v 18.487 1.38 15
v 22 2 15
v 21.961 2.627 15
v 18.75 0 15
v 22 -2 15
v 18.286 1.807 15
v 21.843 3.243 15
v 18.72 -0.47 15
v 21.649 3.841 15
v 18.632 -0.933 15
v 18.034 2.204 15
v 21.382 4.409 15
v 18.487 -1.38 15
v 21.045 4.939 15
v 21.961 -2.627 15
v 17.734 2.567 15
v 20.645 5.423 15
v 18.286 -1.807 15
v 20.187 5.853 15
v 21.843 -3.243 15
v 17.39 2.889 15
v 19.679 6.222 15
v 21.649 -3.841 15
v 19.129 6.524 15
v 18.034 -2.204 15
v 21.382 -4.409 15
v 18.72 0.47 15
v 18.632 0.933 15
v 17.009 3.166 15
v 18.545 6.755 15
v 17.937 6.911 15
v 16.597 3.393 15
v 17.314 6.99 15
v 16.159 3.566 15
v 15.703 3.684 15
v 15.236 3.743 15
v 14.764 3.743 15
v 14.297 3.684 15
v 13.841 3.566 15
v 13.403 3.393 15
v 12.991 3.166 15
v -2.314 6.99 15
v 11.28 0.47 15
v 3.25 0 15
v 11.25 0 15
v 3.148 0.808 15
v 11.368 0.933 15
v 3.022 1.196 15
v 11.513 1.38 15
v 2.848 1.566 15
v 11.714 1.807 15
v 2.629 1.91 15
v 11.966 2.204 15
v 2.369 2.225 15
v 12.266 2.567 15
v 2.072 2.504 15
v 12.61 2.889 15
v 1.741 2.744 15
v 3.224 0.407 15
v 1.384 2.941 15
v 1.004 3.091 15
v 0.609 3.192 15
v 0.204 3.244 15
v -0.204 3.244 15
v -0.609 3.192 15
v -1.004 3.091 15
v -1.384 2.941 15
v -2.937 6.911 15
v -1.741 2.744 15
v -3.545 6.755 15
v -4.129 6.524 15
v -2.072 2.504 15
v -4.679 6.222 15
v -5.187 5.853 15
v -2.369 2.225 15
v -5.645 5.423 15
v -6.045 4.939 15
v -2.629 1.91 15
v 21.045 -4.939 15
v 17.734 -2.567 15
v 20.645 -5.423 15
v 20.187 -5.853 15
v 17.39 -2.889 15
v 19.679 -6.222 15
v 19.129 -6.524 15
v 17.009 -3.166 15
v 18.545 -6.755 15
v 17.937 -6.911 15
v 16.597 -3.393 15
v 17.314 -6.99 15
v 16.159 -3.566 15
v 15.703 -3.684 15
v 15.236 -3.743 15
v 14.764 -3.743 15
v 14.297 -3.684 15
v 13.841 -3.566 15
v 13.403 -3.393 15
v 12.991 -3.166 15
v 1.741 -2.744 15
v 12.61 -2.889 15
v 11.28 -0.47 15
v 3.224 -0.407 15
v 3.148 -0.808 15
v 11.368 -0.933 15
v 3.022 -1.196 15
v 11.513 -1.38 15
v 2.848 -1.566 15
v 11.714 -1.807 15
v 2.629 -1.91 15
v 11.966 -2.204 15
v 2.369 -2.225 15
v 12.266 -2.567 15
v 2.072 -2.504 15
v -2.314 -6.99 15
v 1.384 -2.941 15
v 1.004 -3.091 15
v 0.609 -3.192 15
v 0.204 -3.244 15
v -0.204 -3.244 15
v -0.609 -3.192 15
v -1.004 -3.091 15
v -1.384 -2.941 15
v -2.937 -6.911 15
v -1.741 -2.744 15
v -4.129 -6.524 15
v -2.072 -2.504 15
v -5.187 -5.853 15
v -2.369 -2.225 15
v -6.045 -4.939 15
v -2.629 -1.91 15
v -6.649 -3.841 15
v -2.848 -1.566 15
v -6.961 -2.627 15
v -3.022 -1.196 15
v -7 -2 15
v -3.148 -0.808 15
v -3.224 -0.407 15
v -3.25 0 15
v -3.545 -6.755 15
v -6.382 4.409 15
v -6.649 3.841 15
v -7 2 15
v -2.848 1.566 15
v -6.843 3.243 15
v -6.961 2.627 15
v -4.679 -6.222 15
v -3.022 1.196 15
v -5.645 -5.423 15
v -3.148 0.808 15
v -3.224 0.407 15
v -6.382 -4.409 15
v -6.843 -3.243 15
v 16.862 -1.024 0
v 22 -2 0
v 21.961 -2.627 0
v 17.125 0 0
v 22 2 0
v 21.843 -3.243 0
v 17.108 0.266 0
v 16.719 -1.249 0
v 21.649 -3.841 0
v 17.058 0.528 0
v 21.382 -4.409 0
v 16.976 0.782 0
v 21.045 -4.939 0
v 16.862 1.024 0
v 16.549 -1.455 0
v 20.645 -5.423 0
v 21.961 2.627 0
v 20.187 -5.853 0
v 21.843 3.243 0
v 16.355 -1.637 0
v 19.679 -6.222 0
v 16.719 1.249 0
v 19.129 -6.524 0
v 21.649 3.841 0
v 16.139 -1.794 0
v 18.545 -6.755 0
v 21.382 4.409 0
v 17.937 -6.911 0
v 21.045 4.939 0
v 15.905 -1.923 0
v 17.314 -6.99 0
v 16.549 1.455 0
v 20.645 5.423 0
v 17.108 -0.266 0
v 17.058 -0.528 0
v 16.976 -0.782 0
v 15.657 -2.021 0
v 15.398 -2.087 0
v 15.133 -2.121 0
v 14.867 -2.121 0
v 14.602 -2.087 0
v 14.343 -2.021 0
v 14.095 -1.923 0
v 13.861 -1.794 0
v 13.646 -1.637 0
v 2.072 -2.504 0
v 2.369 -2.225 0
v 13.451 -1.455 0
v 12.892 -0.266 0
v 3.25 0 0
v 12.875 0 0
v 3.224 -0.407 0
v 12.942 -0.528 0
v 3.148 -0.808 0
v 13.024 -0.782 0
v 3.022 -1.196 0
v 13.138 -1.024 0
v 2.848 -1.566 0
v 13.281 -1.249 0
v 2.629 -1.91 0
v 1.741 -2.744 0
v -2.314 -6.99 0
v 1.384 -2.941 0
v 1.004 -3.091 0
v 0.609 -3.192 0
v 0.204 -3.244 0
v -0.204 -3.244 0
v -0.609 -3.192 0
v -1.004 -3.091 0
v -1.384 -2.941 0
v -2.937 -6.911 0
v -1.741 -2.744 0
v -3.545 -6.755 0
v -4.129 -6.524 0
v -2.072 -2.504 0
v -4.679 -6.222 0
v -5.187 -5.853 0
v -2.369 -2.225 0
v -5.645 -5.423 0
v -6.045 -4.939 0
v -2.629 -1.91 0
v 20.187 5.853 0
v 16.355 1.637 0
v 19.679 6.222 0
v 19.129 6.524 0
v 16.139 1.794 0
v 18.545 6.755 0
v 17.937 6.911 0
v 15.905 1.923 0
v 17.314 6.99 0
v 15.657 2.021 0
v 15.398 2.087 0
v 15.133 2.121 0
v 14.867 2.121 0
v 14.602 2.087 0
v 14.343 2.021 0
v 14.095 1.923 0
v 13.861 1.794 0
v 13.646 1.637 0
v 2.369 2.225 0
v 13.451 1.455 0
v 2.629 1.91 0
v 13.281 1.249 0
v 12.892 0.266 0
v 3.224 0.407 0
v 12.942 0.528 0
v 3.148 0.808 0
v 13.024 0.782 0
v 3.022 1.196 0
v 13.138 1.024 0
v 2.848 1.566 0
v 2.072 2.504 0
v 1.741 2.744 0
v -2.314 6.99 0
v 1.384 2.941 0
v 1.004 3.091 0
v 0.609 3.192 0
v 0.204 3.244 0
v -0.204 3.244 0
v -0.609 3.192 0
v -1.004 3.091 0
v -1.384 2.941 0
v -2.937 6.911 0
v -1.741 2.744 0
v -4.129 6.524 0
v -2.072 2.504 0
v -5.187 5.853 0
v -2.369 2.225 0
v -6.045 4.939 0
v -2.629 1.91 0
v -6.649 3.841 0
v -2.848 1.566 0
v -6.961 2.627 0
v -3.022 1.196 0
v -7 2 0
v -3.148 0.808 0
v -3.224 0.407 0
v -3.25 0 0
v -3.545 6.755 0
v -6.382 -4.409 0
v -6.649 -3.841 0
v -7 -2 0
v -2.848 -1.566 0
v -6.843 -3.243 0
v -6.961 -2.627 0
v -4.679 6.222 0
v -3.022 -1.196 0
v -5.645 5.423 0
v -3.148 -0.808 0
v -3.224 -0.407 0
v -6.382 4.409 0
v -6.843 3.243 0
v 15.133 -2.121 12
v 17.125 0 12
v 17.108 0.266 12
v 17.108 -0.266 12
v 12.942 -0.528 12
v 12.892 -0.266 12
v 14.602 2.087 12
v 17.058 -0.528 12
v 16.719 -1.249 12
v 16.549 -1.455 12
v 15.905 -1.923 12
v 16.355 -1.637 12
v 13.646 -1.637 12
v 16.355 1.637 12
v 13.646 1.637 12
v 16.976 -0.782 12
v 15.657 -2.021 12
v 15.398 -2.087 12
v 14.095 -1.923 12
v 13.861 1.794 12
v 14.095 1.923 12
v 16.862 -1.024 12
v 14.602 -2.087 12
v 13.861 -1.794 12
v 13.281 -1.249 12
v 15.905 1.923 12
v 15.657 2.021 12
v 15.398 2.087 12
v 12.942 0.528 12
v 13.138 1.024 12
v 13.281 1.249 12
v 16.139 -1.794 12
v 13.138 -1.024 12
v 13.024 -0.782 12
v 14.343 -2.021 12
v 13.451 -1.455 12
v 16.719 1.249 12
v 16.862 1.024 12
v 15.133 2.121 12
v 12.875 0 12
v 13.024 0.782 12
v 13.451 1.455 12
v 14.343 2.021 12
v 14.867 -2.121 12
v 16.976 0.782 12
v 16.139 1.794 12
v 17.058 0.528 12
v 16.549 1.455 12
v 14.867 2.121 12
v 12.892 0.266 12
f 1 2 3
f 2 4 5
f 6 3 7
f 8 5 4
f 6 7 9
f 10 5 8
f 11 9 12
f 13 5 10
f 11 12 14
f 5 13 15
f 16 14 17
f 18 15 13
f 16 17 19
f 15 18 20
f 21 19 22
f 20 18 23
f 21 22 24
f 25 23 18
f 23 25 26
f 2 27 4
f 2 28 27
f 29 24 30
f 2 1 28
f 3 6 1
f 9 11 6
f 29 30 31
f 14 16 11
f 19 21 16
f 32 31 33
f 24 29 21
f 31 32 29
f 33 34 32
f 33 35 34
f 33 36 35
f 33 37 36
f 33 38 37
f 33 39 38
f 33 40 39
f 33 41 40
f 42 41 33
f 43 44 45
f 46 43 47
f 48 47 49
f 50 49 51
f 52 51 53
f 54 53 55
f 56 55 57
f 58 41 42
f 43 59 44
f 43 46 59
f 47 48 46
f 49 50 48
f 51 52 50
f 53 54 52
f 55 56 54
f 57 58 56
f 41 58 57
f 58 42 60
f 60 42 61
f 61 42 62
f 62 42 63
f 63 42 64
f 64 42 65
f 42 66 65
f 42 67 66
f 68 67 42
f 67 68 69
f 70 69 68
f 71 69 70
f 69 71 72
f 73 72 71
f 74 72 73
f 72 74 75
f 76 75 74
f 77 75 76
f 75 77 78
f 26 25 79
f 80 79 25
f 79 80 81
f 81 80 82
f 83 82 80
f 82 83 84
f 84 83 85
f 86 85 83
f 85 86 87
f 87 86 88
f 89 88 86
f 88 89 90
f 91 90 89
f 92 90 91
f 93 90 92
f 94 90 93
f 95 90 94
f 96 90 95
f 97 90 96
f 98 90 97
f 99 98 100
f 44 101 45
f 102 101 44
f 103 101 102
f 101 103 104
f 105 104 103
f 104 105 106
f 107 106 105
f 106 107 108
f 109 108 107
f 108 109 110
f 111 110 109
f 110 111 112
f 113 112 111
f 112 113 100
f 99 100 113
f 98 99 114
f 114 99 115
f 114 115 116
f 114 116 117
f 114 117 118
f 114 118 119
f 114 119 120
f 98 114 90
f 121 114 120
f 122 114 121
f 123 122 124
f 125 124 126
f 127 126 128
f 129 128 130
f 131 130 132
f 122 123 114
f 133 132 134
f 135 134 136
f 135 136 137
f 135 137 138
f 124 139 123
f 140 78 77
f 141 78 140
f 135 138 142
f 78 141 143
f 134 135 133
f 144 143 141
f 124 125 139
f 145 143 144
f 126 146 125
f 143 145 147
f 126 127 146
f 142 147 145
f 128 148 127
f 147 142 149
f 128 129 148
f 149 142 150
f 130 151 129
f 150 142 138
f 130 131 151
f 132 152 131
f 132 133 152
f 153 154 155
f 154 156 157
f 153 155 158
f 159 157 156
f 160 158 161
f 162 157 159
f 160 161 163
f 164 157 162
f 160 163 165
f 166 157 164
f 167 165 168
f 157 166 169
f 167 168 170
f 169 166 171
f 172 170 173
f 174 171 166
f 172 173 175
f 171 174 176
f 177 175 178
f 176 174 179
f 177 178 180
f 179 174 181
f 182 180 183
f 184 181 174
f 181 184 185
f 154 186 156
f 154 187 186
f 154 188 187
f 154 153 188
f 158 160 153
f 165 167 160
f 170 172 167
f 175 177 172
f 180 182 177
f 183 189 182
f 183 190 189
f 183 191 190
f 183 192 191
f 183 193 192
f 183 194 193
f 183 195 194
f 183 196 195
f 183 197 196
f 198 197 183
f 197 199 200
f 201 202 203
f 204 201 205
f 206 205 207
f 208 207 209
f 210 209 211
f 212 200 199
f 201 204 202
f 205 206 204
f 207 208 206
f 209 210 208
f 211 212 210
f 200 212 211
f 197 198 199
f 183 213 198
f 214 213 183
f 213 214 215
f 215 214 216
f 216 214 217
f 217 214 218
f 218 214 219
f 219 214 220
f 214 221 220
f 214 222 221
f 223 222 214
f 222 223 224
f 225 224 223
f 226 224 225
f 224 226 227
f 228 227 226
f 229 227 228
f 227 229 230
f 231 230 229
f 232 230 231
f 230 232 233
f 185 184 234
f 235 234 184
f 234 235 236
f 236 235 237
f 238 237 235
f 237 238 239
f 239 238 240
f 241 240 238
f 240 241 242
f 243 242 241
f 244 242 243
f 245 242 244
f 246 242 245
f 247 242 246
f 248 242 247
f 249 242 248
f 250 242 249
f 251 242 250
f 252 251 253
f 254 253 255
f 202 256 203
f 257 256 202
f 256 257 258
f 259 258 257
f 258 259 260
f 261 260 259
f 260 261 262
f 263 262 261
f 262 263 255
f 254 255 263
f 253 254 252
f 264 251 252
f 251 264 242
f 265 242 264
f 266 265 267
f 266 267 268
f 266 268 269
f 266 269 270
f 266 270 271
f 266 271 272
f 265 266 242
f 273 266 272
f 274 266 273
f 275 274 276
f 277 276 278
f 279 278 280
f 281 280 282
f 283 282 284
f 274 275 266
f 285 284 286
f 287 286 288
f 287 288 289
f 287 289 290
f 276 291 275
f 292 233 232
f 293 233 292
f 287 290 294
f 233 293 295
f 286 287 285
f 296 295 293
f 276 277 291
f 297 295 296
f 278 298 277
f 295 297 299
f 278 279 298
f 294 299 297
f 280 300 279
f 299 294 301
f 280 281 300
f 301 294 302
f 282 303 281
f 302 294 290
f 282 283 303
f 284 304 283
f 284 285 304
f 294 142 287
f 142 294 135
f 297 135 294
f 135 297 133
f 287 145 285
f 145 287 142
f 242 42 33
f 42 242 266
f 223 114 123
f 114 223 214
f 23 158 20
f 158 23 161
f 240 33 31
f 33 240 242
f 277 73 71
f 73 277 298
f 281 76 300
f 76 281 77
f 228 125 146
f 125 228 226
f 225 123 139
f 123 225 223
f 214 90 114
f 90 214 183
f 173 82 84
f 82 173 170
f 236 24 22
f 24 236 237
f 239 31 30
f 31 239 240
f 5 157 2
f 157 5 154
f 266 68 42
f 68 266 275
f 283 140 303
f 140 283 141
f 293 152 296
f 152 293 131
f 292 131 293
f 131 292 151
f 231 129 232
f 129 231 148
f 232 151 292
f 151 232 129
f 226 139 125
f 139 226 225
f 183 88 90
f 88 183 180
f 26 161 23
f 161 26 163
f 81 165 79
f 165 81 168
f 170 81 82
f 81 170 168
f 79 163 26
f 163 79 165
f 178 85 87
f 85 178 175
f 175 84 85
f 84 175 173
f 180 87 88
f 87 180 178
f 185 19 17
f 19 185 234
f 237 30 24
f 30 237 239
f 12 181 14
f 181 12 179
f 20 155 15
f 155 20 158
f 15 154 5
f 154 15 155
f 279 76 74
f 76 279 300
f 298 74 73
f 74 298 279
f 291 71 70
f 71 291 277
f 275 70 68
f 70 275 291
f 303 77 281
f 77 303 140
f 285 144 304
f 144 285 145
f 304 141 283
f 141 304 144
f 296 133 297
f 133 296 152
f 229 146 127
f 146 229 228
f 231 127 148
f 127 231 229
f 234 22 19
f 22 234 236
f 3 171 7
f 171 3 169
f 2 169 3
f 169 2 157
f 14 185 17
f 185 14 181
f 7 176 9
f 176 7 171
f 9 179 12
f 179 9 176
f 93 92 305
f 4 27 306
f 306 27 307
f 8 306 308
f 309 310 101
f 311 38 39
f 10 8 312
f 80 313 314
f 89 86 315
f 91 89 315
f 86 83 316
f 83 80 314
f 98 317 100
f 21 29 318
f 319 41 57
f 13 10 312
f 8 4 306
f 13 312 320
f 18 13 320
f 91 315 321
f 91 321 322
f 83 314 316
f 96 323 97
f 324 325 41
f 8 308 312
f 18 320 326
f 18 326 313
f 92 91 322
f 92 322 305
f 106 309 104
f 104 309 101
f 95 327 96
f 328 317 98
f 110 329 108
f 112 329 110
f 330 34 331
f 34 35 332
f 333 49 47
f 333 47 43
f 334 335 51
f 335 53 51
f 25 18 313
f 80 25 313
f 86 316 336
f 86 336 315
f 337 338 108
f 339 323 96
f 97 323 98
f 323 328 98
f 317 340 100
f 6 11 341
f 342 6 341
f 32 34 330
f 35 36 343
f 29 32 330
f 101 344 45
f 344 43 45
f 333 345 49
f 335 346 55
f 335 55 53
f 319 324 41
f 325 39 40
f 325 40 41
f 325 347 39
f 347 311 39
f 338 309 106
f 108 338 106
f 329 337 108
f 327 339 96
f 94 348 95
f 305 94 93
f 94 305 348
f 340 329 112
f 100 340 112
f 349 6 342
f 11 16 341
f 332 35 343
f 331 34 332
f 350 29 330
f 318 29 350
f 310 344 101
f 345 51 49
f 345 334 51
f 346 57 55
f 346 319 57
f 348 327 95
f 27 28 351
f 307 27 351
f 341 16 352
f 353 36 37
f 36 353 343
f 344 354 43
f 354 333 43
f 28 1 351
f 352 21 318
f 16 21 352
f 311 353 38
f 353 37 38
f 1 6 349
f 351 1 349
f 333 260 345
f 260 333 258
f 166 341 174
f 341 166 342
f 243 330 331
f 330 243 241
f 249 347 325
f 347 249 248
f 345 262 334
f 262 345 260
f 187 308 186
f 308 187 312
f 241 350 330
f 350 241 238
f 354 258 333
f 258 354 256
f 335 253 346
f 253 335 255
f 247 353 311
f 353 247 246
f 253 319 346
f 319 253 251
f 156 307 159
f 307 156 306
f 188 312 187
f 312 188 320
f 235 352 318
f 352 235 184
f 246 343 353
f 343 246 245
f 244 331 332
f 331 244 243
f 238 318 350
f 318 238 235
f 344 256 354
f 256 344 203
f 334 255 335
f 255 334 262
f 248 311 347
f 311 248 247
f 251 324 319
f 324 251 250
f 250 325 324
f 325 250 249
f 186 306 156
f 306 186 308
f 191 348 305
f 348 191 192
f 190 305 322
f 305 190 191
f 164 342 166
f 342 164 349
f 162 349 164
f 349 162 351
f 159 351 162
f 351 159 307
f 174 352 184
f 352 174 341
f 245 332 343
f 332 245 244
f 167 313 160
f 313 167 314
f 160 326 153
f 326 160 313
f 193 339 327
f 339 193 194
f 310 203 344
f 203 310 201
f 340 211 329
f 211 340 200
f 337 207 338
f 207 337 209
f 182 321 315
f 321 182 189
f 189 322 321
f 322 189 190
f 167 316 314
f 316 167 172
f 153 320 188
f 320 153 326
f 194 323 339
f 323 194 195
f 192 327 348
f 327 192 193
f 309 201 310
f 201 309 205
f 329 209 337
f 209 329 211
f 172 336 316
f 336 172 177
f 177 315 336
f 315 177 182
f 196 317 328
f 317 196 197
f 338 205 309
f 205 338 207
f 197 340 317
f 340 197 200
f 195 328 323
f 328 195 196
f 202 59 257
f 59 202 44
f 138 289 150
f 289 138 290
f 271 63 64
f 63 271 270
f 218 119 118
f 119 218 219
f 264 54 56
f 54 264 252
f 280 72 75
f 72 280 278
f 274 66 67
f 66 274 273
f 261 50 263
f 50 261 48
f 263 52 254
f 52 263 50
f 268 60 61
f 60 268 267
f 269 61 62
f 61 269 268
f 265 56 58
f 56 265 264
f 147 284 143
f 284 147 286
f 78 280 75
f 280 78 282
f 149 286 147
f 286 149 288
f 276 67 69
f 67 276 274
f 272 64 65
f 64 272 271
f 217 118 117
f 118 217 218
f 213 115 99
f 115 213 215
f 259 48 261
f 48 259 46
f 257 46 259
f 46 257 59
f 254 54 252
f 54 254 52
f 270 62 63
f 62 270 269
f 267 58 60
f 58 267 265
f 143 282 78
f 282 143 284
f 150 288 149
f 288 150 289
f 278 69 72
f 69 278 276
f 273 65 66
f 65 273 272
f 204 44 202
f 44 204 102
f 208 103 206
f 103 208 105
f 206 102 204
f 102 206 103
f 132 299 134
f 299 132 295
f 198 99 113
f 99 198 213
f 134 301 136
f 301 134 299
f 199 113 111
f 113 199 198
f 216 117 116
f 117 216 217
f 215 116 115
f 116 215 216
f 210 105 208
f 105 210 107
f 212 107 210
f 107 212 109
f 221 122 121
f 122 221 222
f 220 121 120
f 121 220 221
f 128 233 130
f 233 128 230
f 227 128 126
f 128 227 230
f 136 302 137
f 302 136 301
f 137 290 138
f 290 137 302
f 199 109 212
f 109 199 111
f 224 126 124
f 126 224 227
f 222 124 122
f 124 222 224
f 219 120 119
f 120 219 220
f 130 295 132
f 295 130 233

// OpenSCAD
$fn = 50;


difference() {
	union() {
		cylinder(h = 15, r = 7.0000000000);
		translate(v = [7.5000000000, 0.0000000000, 0]) {
			hull() {
				translate(v = [-9.5000000000, 2.0000000000, 0]) {
					cylinder(h = 15, r = 5);
				}
				translate(v = [9.5000000000, 2.0000000000, 0]) {
					cylinder(h = 15, r = 5);
				}
				translate(v = [-9.5000000000, -2.0000000000, 0]) {
					cylinder(h = 15, r = 5);
				}
				translate(v = [9.5000000000, -2.0000000000, 0]) {
					cylinder(h = 15, r = 5);
				}
			}
		}
		translate(v = [7.5000000000, 0.0000000000, 0]) {
			hull() {
				translate(v = [-9.5000000000, 2.0000000000, 0]) {
					cylinder(h = 15, r = 5);
				}
				translate(v = [9.5000000000, 2.0000000000, 0]) {
					cylinder(h = 15, r = 5);
				}
				translate(v = [-9.5000000000, -2.0000000000, 0]) {
					cylinder(h = 15, r = 5);
				}
				translate(v = [9.5000000000, -2.0000000000, 0]) {
					cylinder(h = 15, r = 5);
				}
			}
		}
	}
	union() {
		translate(v = [15.0000000000, 0.0000000000, 15]) {
			rotate(a = [0, 0, 0]) {
				difference() {
					union() {
						#translate(v = [0, 0, -15.0000000000]) {
							cylinder(h = 15, r = 2.0000000000);
						}
						#translate(v = [0, 0, -3]) {
							cylinder(h = 3, r1 = 2.1250000000, r2 = 3.7500000000);
						}
						#translate(v = [0, 0, -15.0000000000]) {
							cylinder(h = 15, r = 2.1250000000);
						}
						#translate(v = [0, 0, -15.0000000000]) {
							cylinder(h = 15, r = 2.0000000000);
						}
					}
					union();
				}
			}
		}
		translate(v = [15.0000000000, 0.0000000000, 15]) {
			rotate(a = [0, 0, 0]) {
				difference() {
					union() {
						#translate(v = [0, 0, -15.0000000000]) {
							cylinder(h = 15, r = 2.0000000000);
						}
						#translate(v = [0, 0, -3]) {
							cylinder(h = 3, r1 = 2.1250000000, r2 = 3.7500000000);
						}
						#translate(v = [0, 0, -15.0000000000]) {
							cylinder(h = 15, r = 2.1250000000);
						}
						#translate(v = [0, 0, -15.0000000000]) {
							cylinder(h = 15, r = 2.0000000000);
						}
					}
					union();
				}
			}
		}
		translate(v = [0, 0, -100]) {
			cylinder(h = 200, r = 3.2500000000);
		}
		translate(v = [0, 0, -100]) {
			cylinder(h = 200, r = 1.8000000000);
		}
	}
}
